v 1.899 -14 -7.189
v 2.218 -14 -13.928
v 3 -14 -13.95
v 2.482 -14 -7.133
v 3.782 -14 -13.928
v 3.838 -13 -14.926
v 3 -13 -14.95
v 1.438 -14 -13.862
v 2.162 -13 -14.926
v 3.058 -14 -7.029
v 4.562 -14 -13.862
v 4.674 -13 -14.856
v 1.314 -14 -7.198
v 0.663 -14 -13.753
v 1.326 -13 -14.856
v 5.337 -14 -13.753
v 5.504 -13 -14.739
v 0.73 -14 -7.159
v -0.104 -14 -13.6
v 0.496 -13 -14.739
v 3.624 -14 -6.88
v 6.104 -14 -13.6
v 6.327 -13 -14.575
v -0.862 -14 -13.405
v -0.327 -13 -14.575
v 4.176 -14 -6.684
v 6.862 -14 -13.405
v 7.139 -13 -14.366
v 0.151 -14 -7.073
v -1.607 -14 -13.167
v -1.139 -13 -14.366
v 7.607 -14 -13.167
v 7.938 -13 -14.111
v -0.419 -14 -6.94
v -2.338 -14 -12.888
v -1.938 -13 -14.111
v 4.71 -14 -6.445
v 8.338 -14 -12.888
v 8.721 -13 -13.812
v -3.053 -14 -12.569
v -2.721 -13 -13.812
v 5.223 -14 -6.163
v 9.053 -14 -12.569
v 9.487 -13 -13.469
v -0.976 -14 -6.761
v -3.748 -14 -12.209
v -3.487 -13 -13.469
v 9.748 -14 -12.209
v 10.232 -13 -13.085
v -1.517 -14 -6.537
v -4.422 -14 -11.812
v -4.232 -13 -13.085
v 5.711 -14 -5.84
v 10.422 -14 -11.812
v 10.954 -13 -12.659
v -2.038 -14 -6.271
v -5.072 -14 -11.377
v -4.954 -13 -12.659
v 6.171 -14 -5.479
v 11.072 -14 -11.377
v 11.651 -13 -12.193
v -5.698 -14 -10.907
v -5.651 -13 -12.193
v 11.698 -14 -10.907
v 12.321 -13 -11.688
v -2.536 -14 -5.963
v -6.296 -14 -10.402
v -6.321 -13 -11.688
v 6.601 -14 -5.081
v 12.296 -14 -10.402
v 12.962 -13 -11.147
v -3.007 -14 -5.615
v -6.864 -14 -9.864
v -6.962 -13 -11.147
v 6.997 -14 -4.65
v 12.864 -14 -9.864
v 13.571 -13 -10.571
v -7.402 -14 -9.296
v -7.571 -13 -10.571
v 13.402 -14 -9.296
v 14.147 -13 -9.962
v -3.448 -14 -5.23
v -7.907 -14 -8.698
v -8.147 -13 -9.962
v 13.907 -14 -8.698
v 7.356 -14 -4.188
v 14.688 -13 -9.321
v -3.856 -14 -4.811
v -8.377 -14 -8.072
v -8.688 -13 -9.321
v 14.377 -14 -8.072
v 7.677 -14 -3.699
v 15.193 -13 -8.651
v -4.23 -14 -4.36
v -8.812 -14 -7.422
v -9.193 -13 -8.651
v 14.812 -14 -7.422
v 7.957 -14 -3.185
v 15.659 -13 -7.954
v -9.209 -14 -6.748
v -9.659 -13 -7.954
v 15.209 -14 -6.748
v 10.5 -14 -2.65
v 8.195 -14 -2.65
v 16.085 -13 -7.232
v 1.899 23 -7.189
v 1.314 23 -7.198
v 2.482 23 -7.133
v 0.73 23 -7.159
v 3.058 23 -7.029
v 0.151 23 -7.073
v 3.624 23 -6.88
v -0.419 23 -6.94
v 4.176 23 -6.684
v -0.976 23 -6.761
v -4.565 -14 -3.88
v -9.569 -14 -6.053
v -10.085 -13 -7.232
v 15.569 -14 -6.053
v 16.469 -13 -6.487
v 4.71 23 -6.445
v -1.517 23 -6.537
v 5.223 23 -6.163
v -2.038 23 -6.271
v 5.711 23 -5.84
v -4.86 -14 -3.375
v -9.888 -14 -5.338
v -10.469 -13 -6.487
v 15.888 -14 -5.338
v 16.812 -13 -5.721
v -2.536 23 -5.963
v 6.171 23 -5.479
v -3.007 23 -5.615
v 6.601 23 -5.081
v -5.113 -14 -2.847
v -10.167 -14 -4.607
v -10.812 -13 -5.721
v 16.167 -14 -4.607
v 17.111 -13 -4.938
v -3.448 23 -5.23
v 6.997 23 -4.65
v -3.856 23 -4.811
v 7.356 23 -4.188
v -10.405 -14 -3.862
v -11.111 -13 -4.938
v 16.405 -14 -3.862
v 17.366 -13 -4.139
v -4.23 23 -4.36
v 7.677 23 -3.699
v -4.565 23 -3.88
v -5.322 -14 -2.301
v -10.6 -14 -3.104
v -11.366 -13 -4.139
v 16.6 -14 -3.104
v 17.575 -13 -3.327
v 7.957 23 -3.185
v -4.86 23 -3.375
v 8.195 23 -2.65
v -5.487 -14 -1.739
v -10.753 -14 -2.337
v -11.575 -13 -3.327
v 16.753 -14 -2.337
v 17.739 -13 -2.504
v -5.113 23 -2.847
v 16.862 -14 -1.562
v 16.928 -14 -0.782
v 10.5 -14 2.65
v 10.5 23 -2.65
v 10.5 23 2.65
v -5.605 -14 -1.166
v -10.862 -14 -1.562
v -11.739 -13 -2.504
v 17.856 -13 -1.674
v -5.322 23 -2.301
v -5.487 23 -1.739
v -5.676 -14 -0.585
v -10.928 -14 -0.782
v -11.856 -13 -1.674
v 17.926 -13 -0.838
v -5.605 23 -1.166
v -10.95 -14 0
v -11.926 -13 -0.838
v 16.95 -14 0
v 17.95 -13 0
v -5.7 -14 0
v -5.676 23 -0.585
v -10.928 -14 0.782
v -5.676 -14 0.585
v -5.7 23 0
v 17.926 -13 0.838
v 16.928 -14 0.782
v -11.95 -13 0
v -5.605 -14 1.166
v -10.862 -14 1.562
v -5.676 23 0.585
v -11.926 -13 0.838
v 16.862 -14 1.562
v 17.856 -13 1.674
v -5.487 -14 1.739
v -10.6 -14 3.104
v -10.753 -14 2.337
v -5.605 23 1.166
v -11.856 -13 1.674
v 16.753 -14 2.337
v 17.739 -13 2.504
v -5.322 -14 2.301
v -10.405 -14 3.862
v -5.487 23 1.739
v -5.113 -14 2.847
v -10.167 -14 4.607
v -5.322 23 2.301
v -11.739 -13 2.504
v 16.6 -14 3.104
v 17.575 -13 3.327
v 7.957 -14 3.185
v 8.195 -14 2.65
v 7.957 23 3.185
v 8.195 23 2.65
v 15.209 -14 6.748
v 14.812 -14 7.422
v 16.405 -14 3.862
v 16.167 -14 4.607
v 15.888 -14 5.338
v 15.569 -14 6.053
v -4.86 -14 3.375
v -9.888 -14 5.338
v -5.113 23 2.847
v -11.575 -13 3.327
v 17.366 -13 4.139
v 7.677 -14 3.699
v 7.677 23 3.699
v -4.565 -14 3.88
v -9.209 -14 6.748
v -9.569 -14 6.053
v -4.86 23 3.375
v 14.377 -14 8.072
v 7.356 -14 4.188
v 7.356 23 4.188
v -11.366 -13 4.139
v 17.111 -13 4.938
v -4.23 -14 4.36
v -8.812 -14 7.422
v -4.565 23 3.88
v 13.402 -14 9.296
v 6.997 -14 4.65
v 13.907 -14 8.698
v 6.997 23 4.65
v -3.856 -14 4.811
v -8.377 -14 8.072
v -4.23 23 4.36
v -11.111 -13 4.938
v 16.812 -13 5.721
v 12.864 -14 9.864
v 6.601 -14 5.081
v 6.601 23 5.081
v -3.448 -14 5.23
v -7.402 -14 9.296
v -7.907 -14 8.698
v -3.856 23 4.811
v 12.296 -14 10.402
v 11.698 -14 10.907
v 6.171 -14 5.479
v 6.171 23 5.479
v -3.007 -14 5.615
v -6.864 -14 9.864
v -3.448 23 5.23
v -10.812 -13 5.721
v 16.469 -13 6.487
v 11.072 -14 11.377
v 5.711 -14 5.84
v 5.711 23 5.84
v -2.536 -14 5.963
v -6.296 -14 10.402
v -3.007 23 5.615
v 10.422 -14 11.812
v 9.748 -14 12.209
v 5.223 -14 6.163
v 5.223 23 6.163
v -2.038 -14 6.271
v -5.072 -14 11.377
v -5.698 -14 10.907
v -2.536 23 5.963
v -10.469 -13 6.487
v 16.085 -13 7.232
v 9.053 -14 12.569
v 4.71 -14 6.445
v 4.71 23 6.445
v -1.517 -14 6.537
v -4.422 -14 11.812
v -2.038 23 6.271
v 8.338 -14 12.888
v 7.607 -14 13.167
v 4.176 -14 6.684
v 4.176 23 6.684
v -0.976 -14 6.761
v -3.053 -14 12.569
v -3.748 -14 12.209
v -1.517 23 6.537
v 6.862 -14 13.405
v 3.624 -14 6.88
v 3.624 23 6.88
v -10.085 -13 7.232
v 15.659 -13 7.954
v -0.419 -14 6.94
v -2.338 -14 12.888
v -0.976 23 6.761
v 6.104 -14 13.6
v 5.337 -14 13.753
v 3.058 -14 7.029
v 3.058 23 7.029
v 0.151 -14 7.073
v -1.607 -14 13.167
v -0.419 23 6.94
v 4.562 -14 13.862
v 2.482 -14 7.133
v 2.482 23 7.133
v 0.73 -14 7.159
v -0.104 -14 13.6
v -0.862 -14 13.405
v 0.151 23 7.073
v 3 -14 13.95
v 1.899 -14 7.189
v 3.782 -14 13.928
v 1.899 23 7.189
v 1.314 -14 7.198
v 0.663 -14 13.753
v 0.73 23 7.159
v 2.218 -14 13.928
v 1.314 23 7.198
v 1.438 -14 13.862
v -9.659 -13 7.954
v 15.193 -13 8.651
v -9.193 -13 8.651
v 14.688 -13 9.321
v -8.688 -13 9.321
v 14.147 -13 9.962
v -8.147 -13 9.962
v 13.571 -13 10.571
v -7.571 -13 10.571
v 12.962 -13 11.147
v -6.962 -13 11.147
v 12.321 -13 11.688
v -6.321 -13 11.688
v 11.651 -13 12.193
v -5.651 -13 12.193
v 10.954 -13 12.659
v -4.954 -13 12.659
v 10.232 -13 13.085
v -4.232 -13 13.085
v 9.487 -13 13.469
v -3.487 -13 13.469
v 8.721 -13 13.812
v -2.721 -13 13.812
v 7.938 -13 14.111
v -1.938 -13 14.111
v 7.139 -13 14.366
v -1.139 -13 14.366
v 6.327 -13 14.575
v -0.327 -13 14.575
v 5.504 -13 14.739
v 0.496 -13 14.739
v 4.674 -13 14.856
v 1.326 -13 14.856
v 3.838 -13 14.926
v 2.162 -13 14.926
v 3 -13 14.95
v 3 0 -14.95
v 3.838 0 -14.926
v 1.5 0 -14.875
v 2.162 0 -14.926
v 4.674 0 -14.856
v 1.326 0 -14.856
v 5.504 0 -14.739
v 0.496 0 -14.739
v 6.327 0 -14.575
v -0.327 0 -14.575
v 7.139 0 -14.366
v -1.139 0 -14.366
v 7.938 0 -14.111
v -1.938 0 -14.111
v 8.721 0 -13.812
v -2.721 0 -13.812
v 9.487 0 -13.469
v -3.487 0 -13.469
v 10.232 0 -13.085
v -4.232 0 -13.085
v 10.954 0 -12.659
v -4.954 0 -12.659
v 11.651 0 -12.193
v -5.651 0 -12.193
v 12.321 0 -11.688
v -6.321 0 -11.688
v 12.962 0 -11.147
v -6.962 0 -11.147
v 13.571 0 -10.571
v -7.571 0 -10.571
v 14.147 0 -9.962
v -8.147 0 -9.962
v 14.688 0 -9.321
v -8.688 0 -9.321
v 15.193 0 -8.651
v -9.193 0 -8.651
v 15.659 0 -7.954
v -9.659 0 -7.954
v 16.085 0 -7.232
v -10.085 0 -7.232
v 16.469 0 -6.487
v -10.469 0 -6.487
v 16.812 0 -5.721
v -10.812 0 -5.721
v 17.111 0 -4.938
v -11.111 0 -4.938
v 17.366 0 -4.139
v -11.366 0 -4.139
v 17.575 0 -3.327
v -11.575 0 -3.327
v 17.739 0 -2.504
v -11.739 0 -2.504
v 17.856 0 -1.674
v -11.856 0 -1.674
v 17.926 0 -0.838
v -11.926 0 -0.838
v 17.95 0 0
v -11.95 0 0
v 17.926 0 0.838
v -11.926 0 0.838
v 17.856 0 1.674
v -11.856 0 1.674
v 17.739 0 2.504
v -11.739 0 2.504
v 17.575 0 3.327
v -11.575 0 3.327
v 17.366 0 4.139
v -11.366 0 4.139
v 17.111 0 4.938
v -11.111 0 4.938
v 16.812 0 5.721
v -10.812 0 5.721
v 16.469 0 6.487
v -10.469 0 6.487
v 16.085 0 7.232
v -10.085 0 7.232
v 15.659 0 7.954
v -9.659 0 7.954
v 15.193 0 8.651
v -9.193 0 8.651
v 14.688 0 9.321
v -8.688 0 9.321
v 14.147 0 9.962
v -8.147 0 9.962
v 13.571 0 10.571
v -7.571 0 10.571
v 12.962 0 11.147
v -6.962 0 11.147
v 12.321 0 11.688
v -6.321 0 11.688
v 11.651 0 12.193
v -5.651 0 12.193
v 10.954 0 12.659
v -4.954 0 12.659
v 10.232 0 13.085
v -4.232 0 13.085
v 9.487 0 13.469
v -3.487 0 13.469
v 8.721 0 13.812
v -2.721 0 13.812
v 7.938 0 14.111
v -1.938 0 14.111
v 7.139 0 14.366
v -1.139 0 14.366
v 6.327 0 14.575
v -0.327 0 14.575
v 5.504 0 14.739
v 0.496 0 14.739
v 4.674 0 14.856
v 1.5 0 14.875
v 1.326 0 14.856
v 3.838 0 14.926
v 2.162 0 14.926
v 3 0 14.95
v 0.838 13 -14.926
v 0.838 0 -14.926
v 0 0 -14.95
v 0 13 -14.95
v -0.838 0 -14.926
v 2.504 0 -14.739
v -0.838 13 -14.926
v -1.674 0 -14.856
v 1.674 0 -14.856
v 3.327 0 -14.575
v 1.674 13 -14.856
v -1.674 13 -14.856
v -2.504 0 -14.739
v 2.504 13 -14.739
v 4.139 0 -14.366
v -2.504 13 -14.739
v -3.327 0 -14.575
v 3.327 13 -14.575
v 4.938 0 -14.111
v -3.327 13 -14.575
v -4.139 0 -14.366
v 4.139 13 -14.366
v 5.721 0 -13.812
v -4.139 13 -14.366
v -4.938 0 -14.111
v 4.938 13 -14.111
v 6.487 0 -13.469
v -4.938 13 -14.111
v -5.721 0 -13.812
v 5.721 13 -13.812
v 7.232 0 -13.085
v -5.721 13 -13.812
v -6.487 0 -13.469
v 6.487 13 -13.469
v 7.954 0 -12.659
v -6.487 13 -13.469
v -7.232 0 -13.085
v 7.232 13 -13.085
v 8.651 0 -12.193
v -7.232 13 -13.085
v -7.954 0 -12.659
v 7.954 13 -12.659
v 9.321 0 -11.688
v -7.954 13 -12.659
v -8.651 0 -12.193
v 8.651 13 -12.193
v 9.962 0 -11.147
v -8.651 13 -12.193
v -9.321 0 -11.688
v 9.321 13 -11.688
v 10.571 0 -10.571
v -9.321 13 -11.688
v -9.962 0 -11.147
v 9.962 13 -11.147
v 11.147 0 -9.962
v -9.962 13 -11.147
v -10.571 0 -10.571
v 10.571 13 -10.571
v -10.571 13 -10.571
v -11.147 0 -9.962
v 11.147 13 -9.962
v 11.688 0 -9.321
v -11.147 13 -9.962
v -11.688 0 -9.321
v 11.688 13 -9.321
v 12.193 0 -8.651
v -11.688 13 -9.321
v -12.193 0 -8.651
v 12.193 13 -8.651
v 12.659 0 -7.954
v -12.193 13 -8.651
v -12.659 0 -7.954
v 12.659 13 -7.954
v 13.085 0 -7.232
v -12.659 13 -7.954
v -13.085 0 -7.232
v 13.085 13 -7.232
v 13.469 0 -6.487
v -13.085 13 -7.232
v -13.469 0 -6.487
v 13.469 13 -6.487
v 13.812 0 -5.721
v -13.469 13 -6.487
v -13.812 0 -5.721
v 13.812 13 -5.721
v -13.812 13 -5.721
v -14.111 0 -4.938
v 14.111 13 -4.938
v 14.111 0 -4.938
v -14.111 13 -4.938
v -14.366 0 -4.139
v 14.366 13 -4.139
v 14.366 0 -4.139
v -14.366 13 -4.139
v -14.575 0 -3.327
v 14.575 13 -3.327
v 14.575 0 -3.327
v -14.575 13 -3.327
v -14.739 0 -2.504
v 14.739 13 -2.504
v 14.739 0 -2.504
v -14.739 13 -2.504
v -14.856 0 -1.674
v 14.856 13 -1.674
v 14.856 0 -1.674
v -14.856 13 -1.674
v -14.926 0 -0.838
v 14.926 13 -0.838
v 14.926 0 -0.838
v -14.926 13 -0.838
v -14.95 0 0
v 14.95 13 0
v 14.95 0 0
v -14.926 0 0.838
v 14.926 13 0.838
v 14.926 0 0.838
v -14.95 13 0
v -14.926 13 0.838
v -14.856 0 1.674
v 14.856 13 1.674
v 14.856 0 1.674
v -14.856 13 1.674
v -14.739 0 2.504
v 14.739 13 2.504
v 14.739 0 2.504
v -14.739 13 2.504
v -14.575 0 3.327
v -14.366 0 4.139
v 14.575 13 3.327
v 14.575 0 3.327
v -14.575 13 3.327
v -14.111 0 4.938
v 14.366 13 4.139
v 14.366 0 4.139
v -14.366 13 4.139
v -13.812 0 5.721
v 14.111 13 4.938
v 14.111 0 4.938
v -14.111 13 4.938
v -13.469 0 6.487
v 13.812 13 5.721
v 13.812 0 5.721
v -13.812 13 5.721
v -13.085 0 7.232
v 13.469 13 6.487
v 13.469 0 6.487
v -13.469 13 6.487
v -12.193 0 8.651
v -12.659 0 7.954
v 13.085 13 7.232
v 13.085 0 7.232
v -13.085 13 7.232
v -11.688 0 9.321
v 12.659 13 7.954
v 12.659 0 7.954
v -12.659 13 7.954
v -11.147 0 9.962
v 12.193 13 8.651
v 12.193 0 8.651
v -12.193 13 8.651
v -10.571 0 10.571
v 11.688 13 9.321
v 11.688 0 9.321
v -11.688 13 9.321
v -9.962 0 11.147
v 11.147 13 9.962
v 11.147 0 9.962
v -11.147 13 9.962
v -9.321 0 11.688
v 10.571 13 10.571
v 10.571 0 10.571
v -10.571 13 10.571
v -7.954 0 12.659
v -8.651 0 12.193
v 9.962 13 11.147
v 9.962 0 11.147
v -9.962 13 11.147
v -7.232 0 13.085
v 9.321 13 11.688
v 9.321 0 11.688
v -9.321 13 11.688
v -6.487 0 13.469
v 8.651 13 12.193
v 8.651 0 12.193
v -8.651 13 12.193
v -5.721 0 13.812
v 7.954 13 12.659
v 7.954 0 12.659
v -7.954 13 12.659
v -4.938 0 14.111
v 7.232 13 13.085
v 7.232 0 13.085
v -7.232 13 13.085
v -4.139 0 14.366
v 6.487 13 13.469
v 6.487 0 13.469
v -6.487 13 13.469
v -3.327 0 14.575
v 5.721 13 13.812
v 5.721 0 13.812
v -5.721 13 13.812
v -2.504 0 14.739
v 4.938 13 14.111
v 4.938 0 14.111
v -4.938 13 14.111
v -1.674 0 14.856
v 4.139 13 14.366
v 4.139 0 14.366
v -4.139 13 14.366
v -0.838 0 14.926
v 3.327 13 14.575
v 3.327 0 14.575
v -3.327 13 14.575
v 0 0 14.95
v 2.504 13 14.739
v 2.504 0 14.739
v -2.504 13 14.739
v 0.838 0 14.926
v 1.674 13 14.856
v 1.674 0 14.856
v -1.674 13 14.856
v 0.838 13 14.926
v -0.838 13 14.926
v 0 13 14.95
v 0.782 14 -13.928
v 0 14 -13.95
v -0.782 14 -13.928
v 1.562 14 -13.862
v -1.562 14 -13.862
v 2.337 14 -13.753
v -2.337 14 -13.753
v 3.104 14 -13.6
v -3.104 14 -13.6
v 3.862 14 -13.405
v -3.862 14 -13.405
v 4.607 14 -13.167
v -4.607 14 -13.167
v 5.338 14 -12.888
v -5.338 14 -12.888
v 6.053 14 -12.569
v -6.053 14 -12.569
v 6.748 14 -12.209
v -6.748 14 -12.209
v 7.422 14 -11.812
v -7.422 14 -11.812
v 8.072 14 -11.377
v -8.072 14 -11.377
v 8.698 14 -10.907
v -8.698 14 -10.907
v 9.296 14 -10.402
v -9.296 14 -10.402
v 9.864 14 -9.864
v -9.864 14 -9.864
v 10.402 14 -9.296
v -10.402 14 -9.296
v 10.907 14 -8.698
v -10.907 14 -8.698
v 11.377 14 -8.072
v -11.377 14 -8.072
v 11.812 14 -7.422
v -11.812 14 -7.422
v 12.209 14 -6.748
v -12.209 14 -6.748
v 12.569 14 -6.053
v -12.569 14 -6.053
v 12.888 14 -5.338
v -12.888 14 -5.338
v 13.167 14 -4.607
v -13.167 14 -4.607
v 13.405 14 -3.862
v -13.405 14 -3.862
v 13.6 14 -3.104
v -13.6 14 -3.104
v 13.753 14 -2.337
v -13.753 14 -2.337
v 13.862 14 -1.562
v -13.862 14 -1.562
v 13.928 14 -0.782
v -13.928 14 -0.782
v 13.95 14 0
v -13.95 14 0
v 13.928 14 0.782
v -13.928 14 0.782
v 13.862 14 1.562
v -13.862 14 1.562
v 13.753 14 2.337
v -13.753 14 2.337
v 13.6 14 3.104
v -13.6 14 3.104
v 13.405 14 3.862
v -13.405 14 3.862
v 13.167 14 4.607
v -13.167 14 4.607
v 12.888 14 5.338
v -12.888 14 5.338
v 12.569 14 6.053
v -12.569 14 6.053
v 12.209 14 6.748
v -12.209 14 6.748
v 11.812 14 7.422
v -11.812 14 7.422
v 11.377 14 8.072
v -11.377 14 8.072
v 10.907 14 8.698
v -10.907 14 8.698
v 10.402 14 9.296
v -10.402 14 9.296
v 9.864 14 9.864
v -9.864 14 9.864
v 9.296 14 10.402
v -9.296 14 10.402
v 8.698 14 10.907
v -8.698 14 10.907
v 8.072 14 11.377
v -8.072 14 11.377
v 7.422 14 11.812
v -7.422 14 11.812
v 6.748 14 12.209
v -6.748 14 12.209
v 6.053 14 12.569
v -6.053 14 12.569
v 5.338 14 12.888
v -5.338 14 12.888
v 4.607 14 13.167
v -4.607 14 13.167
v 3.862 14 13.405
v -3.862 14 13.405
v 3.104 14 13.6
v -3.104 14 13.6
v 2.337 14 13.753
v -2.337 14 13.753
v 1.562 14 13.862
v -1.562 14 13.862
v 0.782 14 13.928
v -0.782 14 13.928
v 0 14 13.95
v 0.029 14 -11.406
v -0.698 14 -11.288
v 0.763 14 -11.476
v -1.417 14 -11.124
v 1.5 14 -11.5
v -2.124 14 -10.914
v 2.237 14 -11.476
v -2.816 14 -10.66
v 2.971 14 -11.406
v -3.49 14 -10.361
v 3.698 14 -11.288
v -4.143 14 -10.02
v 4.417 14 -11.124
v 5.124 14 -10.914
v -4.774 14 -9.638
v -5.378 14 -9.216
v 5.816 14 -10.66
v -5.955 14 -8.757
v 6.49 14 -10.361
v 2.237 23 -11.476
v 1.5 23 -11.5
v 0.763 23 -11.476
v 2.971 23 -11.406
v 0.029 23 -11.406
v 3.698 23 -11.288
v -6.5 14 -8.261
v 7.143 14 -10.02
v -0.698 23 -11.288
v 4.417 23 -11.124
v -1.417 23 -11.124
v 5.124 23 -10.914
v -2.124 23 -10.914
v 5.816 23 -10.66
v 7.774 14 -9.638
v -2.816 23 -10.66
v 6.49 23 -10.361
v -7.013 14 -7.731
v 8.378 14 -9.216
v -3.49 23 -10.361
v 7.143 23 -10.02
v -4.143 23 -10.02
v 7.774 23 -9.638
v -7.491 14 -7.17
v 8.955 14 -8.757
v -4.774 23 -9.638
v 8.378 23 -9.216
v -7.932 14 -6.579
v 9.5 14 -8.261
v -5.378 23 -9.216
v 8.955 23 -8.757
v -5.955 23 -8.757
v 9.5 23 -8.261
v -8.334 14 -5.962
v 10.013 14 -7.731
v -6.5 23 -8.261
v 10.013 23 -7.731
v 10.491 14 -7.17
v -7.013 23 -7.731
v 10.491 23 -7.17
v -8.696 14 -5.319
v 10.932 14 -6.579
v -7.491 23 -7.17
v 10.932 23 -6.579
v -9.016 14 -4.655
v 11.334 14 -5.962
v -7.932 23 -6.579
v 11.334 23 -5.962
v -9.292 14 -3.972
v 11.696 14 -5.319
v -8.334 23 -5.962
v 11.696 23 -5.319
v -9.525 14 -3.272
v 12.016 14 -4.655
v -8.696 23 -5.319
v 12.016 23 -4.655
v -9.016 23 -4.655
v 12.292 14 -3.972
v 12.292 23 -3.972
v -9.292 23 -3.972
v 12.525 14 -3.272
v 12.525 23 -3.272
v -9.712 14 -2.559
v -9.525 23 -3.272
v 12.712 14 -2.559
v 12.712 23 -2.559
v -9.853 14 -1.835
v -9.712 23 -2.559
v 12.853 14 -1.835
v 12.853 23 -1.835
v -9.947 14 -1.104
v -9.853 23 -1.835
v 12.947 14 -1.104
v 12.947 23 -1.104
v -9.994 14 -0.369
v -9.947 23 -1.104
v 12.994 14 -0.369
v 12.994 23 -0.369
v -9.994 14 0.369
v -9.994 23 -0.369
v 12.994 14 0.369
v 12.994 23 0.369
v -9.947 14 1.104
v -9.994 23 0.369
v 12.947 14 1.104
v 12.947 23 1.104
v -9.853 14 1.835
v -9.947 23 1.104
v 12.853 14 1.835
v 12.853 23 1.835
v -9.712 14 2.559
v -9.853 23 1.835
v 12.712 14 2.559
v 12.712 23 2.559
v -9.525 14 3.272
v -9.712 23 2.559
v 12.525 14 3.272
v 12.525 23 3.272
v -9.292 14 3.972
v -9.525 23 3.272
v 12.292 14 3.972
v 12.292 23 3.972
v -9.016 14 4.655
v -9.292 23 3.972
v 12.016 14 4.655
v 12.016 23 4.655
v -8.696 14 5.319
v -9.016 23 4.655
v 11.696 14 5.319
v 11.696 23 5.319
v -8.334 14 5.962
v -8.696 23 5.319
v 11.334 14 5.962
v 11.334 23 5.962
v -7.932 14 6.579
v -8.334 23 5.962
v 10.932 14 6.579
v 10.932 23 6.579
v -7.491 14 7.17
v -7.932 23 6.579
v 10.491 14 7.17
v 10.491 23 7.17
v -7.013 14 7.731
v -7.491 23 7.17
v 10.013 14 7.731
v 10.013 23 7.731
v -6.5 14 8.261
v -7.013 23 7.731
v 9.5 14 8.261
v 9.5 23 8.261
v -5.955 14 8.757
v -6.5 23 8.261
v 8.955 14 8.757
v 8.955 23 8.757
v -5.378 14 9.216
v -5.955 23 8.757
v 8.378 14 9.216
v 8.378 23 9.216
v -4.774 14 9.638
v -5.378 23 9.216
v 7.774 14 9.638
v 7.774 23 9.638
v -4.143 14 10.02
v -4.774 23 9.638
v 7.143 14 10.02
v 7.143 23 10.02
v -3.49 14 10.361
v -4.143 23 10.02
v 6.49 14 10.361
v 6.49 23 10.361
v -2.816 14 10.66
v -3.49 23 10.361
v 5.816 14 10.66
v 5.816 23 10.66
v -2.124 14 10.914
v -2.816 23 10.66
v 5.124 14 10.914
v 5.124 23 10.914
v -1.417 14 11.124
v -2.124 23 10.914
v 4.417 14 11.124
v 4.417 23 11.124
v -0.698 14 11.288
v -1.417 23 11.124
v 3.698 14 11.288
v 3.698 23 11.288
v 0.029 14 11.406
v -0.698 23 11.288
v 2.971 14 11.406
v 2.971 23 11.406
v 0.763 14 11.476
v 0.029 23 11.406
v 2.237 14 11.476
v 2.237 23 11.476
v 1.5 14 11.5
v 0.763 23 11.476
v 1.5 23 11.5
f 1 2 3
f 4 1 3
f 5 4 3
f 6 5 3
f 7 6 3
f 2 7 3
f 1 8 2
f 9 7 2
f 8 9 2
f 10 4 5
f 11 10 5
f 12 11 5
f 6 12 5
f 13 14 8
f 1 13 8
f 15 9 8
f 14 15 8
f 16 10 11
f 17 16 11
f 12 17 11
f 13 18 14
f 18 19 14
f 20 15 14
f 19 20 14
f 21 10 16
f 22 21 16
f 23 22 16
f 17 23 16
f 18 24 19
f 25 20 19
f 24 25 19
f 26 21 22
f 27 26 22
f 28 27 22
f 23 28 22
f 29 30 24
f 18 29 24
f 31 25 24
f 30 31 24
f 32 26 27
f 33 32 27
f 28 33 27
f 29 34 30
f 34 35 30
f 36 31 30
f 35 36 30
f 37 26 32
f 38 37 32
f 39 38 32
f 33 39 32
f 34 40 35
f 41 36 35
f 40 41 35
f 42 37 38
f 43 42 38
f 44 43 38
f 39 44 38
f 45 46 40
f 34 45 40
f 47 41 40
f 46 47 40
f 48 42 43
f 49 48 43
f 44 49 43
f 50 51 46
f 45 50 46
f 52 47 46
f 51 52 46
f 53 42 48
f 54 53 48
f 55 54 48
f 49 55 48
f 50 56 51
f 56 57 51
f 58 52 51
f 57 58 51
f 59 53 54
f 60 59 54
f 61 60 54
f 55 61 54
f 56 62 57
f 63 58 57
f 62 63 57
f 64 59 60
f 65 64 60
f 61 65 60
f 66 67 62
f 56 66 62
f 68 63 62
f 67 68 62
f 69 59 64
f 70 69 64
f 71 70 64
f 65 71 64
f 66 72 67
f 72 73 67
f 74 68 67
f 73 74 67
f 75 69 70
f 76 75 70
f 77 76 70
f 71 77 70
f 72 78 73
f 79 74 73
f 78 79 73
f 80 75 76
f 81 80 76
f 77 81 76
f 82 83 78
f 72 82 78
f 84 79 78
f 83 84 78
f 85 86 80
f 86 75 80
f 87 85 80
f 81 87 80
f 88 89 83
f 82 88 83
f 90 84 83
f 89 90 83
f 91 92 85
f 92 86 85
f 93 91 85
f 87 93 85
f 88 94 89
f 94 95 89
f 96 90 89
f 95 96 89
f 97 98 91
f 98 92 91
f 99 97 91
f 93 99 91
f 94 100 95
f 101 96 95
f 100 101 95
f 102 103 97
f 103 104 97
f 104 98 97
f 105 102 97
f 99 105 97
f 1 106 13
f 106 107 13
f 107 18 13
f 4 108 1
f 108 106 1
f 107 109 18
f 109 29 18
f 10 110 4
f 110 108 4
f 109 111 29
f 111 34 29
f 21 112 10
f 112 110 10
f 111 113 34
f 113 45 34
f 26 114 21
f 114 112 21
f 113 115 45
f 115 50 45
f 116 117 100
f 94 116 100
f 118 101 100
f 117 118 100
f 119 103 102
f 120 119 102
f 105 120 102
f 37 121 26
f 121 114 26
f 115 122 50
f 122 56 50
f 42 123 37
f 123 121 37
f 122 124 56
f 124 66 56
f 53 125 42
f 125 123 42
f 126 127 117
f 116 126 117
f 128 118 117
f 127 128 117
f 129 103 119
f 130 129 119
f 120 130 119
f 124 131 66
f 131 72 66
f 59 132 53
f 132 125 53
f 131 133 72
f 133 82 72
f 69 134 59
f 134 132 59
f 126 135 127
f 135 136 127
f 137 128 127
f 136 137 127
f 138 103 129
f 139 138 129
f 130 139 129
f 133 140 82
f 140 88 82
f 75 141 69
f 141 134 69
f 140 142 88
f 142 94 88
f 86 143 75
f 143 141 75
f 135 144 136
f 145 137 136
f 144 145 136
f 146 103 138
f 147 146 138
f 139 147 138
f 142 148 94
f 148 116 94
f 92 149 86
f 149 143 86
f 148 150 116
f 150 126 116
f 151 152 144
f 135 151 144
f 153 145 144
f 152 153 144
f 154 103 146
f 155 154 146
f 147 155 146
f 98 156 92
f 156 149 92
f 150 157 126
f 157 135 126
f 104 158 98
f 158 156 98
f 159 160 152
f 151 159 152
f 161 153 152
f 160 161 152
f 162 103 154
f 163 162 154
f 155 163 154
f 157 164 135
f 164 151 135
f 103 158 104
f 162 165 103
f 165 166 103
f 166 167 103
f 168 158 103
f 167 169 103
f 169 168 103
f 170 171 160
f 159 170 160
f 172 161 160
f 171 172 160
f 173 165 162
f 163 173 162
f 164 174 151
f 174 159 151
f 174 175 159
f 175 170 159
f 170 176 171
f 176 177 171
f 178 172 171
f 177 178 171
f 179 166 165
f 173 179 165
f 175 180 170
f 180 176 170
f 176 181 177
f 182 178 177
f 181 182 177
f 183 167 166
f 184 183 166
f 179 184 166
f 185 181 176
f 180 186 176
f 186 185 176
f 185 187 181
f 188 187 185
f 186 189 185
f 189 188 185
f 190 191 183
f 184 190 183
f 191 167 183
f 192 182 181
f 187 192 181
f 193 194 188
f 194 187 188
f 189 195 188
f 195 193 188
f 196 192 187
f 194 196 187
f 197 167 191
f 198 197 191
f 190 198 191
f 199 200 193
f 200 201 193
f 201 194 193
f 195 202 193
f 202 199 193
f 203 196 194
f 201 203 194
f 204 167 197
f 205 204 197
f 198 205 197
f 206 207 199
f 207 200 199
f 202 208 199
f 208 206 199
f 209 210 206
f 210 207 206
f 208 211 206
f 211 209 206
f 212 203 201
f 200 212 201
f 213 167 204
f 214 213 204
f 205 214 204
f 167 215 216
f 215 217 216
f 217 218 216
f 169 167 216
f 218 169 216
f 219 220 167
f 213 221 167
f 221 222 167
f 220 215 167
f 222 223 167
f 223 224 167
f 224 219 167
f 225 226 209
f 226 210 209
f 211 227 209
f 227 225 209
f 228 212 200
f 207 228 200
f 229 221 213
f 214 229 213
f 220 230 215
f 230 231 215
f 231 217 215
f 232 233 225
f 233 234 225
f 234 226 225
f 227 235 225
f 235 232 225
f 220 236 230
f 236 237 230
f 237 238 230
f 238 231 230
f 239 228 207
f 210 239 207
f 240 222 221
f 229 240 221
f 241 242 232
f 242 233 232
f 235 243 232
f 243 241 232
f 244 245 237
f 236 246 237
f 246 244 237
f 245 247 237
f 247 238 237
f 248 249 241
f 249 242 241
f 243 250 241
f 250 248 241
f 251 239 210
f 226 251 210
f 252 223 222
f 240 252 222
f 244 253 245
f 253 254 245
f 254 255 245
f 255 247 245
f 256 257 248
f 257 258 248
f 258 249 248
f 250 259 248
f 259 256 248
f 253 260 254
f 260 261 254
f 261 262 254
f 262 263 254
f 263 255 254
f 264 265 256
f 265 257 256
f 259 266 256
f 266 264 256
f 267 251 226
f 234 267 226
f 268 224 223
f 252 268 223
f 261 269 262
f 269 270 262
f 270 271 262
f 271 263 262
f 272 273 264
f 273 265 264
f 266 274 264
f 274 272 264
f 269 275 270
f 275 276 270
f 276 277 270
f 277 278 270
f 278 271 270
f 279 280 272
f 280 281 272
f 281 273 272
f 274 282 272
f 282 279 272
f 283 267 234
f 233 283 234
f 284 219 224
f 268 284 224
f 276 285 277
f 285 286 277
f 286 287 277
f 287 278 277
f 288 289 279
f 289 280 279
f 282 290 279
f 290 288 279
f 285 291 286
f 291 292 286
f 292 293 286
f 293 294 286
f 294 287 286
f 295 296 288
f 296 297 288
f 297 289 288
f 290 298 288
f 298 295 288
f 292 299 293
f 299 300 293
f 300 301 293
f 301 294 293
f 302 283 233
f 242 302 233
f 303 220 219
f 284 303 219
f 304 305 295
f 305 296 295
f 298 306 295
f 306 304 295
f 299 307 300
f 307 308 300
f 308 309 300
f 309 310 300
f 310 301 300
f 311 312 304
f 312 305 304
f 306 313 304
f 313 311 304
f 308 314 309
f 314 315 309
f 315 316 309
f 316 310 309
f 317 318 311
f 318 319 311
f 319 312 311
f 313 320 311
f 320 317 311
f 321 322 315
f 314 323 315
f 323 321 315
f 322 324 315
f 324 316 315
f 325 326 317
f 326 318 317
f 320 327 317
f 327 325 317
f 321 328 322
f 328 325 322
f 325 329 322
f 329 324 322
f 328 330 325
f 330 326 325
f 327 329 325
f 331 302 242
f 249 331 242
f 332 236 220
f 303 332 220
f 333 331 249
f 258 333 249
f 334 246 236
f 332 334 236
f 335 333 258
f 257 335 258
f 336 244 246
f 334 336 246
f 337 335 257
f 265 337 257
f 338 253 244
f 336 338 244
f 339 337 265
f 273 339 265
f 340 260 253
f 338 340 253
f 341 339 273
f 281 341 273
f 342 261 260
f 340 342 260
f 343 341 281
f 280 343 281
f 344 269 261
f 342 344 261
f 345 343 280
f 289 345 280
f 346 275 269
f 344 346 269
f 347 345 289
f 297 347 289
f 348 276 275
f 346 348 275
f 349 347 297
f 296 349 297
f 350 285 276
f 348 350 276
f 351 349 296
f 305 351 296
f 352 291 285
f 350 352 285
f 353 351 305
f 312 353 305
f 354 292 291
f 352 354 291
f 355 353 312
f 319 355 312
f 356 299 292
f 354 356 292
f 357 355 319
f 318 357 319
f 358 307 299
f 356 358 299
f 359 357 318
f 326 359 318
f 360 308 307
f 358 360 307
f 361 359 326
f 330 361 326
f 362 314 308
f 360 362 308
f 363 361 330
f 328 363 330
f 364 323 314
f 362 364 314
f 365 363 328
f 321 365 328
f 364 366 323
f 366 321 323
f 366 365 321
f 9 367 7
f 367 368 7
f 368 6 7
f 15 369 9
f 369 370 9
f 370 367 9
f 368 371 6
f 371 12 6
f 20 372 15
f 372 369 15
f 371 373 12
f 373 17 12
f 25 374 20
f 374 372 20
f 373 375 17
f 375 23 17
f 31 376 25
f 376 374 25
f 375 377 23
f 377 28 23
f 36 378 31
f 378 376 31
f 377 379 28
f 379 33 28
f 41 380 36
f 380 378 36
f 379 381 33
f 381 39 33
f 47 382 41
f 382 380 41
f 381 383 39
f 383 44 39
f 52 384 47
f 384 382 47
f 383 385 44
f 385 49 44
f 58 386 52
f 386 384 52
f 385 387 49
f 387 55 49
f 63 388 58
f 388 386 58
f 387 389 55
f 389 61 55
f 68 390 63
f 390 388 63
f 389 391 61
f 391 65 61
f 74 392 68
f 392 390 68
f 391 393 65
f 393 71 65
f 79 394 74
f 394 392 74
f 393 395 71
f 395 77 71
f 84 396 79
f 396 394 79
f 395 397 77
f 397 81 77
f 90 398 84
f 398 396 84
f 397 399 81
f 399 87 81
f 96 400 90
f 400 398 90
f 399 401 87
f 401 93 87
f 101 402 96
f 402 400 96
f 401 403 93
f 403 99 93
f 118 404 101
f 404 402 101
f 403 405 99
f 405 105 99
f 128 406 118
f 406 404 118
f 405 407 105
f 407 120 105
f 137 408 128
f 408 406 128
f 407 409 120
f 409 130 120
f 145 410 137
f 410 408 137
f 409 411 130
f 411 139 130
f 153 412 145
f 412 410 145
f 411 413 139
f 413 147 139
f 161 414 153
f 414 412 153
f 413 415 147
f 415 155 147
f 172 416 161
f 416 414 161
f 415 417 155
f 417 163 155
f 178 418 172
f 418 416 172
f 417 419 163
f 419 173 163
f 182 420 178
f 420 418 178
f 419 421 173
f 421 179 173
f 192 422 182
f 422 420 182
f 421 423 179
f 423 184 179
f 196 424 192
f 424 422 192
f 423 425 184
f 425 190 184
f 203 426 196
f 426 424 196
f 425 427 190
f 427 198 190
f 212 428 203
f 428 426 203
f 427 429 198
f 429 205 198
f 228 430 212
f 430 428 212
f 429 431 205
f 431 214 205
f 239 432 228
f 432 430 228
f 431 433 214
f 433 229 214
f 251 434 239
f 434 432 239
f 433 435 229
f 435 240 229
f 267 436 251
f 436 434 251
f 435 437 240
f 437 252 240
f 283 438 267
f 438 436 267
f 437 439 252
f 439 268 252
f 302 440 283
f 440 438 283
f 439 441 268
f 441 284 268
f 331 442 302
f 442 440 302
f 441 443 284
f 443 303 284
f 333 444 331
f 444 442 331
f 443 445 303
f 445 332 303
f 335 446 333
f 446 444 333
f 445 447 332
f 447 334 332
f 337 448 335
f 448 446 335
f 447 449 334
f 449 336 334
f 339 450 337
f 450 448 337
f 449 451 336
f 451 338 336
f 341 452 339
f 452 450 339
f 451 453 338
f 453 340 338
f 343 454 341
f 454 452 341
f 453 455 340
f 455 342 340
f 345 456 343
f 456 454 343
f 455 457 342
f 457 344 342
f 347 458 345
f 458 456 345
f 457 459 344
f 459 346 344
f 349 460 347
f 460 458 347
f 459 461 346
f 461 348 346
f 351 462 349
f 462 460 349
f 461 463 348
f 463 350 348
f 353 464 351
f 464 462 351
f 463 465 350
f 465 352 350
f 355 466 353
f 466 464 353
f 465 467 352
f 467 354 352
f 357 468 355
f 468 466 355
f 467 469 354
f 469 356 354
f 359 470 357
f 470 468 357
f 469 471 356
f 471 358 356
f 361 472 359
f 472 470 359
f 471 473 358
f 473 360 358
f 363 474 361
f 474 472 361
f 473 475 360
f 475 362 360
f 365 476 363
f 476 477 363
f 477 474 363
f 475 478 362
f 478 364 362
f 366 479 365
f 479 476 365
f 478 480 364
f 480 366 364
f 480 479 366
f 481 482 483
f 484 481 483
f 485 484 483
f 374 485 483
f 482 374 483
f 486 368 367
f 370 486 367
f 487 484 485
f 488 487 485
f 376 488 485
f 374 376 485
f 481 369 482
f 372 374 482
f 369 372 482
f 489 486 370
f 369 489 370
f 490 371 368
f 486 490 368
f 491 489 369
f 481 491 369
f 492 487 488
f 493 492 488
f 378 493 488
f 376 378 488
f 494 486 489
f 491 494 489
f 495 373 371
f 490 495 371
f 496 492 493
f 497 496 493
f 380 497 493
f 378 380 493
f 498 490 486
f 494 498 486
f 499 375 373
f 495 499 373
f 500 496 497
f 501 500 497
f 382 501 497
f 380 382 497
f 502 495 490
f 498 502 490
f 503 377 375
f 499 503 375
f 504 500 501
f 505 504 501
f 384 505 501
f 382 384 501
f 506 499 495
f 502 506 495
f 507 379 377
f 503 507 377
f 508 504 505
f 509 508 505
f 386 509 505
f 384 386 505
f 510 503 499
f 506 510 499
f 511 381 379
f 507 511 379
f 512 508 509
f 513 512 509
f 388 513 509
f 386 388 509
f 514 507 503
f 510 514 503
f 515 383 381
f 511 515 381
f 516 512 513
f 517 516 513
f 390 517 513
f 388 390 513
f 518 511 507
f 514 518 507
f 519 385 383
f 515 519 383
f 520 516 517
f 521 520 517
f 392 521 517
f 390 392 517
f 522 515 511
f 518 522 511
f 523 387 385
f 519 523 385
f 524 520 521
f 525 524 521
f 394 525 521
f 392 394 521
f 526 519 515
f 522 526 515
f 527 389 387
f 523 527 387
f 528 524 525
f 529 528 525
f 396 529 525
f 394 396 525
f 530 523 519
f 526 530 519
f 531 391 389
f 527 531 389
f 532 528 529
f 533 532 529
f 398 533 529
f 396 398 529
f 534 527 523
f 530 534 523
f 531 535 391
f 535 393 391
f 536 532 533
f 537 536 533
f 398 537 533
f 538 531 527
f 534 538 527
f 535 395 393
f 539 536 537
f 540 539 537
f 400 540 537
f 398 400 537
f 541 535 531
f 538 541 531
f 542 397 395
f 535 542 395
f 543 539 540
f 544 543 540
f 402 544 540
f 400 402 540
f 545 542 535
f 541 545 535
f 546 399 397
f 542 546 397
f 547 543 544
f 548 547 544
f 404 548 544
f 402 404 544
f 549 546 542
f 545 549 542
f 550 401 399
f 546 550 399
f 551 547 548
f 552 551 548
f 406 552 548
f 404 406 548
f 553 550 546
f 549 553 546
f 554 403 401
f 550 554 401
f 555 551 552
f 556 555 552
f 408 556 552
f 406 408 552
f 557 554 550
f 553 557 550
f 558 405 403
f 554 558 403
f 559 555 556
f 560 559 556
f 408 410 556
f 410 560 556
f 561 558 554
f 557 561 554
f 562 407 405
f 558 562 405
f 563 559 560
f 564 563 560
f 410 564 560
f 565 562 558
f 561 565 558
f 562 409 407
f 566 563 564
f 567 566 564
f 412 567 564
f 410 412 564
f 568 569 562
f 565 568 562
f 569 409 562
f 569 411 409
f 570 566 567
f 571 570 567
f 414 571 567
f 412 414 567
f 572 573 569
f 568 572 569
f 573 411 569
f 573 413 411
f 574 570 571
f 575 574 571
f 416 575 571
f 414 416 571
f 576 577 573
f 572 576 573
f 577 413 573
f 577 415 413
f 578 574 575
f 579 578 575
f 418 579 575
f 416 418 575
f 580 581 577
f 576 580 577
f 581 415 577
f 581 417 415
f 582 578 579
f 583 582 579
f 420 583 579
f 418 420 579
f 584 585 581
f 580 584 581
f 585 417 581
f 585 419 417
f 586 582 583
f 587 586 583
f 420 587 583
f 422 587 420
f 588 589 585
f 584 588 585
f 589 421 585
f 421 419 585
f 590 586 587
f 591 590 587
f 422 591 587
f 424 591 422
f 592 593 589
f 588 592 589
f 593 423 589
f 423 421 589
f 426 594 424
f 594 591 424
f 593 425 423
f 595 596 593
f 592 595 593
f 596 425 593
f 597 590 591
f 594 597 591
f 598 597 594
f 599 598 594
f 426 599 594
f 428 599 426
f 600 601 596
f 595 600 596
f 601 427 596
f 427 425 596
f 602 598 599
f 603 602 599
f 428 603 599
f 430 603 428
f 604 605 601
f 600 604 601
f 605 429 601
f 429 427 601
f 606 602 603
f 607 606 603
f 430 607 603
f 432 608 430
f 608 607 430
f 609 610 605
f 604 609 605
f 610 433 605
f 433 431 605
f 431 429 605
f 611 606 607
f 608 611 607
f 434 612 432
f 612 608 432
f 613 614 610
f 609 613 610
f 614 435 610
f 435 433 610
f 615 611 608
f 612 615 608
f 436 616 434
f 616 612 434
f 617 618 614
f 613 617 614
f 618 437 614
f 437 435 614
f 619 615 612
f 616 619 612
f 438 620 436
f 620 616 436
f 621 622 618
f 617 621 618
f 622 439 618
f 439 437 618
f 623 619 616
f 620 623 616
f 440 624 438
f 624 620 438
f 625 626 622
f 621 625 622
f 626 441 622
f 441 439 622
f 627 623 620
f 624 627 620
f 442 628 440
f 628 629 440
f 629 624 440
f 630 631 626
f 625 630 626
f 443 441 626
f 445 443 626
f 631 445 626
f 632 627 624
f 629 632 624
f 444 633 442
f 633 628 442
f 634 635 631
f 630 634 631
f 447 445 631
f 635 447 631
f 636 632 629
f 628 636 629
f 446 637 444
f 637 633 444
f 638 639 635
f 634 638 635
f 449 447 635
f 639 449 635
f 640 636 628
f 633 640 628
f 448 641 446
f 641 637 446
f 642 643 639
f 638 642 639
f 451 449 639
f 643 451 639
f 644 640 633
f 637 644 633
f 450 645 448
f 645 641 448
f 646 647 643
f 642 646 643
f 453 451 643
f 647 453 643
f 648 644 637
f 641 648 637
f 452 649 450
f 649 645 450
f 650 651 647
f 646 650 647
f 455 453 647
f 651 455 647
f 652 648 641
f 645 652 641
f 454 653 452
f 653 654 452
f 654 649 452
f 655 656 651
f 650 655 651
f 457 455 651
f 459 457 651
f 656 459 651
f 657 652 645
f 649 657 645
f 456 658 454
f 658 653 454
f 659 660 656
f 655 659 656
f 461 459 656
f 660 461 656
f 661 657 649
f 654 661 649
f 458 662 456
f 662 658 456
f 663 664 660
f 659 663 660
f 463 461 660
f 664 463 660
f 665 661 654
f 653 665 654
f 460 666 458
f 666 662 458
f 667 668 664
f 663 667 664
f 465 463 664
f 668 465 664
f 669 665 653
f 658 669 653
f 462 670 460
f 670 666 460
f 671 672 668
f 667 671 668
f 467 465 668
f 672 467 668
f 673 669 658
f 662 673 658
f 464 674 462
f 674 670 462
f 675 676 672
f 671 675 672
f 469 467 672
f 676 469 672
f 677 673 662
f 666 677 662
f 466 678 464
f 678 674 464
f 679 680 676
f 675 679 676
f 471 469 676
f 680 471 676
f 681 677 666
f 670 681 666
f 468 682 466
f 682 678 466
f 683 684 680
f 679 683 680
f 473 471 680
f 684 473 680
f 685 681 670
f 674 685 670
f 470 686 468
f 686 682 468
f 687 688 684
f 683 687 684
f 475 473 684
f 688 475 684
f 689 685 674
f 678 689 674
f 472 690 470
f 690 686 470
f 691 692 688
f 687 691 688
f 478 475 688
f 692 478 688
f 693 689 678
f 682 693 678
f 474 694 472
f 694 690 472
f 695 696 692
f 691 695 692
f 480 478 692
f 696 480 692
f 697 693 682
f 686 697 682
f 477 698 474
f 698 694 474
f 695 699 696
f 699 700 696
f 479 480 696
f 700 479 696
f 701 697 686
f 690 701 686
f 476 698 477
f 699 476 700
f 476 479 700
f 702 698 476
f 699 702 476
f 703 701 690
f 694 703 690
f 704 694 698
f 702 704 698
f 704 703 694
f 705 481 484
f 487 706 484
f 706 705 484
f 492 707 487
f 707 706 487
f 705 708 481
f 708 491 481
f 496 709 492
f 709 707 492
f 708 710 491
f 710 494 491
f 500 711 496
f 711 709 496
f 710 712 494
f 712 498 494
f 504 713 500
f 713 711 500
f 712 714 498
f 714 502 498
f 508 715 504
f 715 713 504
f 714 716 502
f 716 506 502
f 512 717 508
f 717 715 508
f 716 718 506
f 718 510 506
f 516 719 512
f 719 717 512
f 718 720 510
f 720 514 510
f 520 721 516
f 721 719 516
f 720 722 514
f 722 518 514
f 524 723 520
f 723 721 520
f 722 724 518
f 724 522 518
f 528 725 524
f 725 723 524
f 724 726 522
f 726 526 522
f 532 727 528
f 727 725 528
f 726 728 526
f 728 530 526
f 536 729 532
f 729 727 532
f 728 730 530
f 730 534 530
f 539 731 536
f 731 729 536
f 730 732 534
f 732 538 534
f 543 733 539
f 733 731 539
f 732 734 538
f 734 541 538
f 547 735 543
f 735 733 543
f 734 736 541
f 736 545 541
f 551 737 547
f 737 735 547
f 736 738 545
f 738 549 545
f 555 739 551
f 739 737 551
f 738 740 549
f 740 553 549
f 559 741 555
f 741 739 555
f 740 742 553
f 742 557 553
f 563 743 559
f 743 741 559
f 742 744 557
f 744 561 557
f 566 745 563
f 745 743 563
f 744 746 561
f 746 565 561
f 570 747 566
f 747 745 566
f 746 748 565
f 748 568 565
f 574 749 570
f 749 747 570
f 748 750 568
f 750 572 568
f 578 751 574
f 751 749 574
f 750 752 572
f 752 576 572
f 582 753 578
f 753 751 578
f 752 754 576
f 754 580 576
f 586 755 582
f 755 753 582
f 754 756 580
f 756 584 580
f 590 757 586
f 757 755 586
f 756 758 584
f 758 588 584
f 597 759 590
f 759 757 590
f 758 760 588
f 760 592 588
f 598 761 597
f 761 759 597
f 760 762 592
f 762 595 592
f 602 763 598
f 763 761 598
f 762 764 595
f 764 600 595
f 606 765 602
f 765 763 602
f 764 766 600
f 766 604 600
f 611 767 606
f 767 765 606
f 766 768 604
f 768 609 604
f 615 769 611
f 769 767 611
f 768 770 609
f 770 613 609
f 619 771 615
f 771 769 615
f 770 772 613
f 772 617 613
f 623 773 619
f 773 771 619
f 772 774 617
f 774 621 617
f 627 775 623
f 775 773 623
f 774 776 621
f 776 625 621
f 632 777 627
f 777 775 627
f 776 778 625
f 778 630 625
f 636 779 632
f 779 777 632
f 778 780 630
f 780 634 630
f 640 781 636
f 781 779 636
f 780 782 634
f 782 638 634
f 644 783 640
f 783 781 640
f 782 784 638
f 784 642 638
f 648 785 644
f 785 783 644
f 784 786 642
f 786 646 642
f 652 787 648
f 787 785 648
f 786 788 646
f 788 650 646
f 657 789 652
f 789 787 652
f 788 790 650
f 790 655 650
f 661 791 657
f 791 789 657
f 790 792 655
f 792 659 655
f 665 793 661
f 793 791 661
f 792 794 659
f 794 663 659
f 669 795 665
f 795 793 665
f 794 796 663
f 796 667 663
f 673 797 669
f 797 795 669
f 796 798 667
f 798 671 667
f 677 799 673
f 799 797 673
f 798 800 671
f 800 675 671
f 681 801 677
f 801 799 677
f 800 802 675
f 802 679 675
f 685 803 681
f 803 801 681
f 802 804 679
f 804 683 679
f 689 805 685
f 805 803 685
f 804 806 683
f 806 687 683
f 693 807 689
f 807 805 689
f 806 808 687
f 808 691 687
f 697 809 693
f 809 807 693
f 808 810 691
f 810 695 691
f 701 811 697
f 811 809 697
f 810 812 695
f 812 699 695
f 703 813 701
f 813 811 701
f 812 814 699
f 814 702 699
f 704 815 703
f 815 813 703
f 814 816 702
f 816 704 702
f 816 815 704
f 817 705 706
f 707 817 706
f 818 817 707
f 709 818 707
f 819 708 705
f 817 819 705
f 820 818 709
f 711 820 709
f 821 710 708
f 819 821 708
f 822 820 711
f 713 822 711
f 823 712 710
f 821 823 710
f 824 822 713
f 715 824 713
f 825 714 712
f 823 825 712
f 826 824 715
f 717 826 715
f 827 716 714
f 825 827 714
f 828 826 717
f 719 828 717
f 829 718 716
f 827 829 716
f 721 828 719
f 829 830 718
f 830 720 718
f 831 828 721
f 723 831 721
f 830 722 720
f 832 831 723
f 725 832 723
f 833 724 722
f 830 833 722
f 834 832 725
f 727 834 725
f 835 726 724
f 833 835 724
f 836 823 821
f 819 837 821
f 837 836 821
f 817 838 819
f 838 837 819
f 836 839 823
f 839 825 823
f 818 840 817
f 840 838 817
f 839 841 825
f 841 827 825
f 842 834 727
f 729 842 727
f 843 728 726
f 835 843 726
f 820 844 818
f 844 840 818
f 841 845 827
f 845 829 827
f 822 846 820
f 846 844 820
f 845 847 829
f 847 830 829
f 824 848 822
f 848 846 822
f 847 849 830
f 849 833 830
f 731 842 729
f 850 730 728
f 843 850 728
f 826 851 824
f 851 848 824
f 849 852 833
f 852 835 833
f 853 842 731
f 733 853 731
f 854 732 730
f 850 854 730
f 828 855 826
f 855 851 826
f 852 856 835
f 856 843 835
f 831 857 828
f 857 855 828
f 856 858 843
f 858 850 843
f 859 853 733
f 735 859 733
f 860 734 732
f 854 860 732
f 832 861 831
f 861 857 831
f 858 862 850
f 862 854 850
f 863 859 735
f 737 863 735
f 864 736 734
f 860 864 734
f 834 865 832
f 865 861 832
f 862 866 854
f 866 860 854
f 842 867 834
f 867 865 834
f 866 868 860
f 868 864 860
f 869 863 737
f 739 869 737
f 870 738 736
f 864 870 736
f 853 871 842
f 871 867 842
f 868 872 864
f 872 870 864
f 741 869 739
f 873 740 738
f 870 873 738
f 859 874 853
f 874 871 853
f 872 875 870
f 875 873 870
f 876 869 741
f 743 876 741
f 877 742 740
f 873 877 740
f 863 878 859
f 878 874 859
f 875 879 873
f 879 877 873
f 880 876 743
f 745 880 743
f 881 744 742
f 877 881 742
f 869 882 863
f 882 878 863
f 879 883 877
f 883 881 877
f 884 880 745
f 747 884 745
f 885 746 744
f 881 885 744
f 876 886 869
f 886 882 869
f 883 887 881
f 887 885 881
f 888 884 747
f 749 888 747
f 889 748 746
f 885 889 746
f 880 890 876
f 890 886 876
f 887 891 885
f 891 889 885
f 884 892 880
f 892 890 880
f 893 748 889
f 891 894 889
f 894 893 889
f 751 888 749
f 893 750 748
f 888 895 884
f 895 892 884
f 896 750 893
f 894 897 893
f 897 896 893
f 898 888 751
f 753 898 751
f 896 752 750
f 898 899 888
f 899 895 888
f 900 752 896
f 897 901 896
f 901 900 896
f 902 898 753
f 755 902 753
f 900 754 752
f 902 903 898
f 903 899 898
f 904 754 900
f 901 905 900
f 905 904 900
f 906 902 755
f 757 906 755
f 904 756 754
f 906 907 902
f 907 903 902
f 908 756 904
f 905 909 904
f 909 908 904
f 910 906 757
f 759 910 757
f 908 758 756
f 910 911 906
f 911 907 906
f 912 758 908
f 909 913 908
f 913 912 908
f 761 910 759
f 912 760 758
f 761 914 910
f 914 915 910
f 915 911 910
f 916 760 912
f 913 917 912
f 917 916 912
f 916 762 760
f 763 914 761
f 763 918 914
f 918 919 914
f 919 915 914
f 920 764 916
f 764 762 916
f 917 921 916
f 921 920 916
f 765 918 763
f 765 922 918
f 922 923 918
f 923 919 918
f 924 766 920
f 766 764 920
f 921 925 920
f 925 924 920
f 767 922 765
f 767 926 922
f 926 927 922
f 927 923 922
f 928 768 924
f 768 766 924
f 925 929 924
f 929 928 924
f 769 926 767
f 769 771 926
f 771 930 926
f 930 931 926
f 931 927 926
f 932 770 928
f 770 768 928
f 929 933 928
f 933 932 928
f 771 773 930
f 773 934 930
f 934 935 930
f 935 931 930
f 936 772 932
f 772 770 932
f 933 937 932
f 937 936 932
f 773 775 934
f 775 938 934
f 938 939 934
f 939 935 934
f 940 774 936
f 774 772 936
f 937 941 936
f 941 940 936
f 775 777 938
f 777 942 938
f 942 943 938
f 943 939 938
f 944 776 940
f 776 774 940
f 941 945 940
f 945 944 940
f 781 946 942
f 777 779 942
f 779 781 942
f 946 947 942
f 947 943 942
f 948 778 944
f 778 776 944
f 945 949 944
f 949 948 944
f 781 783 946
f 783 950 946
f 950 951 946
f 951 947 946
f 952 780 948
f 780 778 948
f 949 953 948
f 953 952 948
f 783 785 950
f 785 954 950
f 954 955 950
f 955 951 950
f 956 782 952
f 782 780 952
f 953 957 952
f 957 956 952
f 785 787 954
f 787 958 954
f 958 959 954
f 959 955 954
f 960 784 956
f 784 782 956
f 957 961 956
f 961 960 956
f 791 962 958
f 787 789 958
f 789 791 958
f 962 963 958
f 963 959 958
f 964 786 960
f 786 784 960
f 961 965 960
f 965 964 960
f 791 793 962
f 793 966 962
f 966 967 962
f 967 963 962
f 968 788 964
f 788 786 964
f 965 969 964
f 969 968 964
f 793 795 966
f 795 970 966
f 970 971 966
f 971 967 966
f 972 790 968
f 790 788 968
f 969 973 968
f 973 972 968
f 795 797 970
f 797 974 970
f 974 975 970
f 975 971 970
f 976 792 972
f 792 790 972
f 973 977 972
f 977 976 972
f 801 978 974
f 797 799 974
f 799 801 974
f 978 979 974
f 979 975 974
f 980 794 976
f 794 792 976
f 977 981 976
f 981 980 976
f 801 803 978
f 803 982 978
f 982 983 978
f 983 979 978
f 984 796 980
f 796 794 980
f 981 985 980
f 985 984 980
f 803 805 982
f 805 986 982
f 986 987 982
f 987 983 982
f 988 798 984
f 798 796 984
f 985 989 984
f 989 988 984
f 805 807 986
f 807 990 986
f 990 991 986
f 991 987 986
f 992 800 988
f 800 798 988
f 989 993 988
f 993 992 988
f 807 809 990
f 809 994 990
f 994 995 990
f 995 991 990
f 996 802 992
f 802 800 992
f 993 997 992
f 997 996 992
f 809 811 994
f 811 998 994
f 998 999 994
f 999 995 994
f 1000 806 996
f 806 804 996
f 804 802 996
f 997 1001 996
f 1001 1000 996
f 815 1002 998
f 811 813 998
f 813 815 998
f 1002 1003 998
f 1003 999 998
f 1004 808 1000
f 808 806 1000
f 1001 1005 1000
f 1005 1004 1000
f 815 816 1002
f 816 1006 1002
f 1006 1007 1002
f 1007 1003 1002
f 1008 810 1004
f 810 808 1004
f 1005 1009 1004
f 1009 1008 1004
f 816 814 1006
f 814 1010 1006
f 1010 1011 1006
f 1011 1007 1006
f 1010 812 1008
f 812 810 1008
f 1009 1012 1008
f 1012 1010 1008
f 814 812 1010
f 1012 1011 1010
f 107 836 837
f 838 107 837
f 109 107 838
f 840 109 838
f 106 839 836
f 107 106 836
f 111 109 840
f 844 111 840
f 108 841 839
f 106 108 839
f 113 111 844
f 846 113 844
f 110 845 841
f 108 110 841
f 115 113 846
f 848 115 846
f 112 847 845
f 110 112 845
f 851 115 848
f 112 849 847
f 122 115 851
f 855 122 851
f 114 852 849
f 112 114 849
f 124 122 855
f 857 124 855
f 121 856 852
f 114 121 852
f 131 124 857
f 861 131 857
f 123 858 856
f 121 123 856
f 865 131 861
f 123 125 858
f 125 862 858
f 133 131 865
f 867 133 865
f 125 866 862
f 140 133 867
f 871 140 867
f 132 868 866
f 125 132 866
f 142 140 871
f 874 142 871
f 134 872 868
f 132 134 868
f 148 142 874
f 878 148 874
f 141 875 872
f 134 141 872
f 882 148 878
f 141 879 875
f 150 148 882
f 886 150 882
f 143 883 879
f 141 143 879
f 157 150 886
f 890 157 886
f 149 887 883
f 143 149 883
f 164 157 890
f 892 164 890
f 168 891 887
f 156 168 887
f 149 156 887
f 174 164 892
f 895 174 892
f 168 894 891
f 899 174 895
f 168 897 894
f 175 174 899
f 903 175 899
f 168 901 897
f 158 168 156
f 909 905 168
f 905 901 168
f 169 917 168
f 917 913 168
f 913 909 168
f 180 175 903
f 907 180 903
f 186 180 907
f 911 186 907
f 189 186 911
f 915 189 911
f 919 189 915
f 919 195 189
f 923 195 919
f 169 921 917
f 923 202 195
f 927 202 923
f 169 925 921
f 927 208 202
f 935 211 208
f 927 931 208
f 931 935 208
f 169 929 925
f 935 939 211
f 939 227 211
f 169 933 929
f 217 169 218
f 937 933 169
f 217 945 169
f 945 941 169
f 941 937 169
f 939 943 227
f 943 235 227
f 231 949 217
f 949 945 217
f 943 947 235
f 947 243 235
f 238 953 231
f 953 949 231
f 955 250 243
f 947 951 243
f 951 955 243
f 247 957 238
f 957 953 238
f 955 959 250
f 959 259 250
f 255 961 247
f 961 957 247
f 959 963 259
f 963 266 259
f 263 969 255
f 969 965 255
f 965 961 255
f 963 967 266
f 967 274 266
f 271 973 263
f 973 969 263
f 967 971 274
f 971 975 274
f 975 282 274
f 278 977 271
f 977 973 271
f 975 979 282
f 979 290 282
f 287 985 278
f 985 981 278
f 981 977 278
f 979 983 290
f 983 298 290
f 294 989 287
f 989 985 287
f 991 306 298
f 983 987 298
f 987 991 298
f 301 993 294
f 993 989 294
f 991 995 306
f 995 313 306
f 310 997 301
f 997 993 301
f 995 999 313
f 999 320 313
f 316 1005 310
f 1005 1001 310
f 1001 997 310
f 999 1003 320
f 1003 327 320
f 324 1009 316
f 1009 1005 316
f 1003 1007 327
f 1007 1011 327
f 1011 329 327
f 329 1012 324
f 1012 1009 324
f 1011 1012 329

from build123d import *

# Parameters (mm, degrees)
SKETCH1_R               = 14.95
BOSS_EXTRUDE1_DEPTH     = 14
SKETCH3_R               = 14.95
BOSS_EXTRUDE2_DEPTH     = 14
CHAMFER1_SIZE           = 1
SKETCH11_R              = 11.5
BOSS_EXTRUDE3_DEPTH     = 9
CUT_EXTRUDE1_DEPTH      = 37.465120321
CUT_EXTRUDE1_DEPTH_BACK = 37.465120321
SKETCH9_R               = 7.2
CUT_EXTRUDE2_DEPTH      = 37.465120321
CUT_EXTRUDE2_DEPTH_BACK = 37.465120321
SKETCH10_W              = 2.718236021
SKETCH10_H              = 5.3


with BuildPart() as part:
    # Sketch1 → Boss-Extrude1 (new body)
    with BuildSketch(Plane(origin=(0, 0, 0), x_dir=(1, 0, 0), z_dir=(0, 1, 0))):
        with Locations(Location((0, 0, 0), (0, 0, 270))):
            Circle(SKETCH1_R)
    extrude(amount=BOSS_EXTRUDE1_DEPTH)

    # Sketch3 → Boss-Extrude2 (add)
    with BuildSketch(Plane.XZ):
        with Locations(Location((3, 0, 0), (0, 0, 95.758429808))):
            Circle(SKETCH3_R)
    extrude(amount=BOSS_EXTRUDE2_DEPTH)

    # Chamfer1
    chamfer1_edges = [part.edges().sort_by_distance(p)[0] for p in [
        (0, 14, -14.95),
        (4.5, -14, -14.874558817),
    ]]
    chamfer(chamfer1_edges, length=CHAMFER1_SIZE)

    # Sketch11 → Boss-Extrude3 (add)
    with BuildSketch(Plane(origin=(0, 14, 0), x_dir=(1, 0, 0), z_dir=(0, 1, 0))):
        with Locations(Location((1.5, 0, 0), (0, 0, 270))):
            Circle(SKETCH11_R)
    extrude(amount=BOSS_EXTRUDE3_DEPTH)

    # Sketch9 → Cut-Extrude1 (cut, two sides: drawn at the far end of the back side and taken through both)
    with BuildSketch(Plane(origin=(0, 14, 0), x_dir=(1, 0, 0), z_dir=(0, 1, 0)).offset(-CUT_EXTRUDE1_DEPTH_BACK)):
        with Locations(Location((1.5, 0, 0), (0, 0, 270))):
            Circle(SKETCH9_R)
    extrude(amount=CUT_EXTRUDE1_DEPTH + CUT_EXTRUDE1_DEPTH_BACK, mode=Mode.SUBTRACT)

    # Sketch10 → Cut-Extrude2 (cut, two sides: drawn at the far end of the back side and taken through both)
    with BuildSketch(Plane(origin=(0, 14, 0), x_dir=(1, 0, 0), z_dir=(0, 1, 0)).offset(-CUT_EXTRUDE2_DEPTH_BACK)):
        with Locations((9.14088199, 0)):
            Rectangle(SKETCH10_W, SKETCH10_H)
    extrude(amount=CUT_EXTRUDE2_DEPTH + CUT_EXTRUDE2_DEPTH_BACK, mode=Mode.SUBTRACT)


solid = part.part
